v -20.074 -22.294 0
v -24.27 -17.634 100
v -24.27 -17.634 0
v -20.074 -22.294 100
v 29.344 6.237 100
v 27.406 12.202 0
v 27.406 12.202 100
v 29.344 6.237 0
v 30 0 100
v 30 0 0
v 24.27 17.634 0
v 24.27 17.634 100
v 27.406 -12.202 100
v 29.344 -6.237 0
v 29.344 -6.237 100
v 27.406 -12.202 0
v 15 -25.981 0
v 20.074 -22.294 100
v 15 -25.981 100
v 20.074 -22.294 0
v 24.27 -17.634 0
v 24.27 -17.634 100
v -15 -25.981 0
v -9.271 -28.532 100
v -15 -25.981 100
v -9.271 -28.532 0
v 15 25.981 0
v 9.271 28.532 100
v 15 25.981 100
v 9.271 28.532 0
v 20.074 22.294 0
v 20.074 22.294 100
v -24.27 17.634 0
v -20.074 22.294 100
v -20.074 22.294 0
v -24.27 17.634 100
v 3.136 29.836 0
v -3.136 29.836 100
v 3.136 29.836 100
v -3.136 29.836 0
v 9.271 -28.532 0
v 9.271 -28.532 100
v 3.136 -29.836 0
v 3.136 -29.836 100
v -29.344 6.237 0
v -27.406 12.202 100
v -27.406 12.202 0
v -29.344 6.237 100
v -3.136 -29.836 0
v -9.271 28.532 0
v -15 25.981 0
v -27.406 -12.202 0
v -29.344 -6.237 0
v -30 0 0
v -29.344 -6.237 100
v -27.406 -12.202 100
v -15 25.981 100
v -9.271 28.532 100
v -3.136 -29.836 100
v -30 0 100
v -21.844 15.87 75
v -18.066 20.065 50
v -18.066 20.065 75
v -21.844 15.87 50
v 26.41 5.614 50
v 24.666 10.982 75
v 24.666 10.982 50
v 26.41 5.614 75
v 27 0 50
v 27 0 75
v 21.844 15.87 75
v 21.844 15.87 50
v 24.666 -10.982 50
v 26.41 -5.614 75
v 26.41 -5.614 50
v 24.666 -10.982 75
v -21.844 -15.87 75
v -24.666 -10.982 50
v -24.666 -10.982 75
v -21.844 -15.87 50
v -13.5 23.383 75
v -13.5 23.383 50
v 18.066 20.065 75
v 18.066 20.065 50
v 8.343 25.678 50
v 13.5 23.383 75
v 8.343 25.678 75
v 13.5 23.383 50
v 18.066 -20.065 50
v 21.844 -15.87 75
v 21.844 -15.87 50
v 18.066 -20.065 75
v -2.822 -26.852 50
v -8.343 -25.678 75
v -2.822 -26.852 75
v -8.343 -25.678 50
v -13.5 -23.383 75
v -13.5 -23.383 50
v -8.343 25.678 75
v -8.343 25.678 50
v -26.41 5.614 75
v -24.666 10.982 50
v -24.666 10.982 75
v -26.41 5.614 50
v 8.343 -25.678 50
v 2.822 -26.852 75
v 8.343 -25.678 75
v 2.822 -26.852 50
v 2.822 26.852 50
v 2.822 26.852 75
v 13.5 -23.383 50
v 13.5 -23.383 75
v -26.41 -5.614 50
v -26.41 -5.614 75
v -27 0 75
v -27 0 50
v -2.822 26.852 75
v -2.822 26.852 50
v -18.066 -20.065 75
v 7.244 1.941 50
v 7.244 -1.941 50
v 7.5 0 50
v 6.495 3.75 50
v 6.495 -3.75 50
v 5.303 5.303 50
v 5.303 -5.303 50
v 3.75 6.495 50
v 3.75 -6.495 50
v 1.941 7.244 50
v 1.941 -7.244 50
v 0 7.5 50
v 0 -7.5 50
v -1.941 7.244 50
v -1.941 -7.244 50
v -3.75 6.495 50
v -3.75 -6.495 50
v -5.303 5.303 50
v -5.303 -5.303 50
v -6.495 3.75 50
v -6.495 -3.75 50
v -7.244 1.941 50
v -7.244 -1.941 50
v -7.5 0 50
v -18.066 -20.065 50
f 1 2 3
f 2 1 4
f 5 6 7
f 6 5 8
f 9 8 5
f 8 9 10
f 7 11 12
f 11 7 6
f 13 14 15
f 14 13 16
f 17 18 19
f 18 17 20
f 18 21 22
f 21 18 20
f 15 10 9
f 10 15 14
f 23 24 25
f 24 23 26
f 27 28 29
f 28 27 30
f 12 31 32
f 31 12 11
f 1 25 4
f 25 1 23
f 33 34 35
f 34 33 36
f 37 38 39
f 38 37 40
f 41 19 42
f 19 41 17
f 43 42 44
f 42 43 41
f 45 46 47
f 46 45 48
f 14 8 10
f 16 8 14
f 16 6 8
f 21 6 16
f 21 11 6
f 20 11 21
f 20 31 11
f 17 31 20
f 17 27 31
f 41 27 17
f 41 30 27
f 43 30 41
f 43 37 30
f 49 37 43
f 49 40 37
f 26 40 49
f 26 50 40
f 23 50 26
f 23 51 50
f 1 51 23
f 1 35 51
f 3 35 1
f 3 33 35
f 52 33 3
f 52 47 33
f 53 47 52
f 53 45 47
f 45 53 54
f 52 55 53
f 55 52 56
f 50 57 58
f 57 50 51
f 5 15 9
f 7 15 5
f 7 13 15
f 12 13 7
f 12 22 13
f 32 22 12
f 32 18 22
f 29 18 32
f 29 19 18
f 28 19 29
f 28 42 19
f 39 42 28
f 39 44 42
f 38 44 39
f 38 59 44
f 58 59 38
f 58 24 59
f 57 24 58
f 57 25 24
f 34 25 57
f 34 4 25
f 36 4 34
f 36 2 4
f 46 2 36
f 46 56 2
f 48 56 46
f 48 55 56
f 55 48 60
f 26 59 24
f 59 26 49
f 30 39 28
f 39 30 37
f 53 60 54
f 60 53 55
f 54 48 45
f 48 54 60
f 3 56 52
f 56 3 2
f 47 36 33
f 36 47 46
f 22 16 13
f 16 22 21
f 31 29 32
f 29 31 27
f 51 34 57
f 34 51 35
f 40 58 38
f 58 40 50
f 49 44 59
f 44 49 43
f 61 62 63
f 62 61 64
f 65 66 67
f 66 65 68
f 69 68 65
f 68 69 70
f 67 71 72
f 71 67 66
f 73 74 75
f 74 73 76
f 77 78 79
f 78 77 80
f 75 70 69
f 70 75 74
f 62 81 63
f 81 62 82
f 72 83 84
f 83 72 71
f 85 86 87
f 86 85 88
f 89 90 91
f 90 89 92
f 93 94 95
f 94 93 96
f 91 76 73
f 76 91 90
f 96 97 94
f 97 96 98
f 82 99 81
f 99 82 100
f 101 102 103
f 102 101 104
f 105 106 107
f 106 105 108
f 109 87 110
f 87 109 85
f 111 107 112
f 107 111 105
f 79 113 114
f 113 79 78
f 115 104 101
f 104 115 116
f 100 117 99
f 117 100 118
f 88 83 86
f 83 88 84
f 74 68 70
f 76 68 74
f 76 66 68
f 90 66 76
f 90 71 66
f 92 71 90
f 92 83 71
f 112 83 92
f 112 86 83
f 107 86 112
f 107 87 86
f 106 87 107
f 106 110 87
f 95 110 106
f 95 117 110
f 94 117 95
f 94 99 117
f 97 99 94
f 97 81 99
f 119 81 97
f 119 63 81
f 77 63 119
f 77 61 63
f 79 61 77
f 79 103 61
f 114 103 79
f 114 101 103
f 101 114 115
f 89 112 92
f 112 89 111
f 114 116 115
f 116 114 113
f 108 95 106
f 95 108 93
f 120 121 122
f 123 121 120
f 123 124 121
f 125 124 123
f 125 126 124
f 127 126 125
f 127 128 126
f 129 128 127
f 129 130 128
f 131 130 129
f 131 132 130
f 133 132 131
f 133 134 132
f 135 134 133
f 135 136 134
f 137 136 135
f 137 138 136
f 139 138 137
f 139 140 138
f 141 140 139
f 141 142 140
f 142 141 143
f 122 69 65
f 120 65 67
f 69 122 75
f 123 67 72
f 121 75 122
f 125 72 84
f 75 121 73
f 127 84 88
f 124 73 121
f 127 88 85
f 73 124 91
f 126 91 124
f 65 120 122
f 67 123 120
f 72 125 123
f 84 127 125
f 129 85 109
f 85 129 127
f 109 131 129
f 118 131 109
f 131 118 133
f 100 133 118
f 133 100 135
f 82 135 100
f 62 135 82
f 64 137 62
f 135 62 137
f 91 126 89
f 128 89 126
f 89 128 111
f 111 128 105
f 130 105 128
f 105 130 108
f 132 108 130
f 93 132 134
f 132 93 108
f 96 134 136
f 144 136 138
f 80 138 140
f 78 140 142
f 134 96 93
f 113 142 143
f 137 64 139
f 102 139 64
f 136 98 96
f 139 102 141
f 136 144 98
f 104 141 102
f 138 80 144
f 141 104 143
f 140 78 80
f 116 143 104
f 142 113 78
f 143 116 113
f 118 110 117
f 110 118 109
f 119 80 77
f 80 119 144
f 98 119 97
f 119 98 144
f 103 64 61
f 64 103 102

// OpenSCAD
// Parameters for the bottle
neck_height = 50;
neck_diameter = 15;
body_height = 100;
body_diameter = 60;
body_wall_thickness = 3;
base_diameter = 40;
base_height = 20;
base_wall_thickness = 2;

// Calculate inner dimensions
neck_height_inner = neck_height - neck_height;
neck_diameter_inner = neck_diameter * 0.7;
body_height_inner = body_height - body_height;
body_diameter_inner = body_diameter * 0.7;
base_diameter_inner = base_diameter * 0.7;
base_height_inner = base_height - base_height;

module bottle() {
    // Body
    difference() {
        cylinder(h = body_height, d = body_diameter, center = false);
        translate([0, 0, body_height/2])
        cylinder(h = body_height/4, d = body_diameter - 2*body_wall_thickness, center = false);
    }

    // Neck
    cylinder(h = neck_height, d = neck_diameter, center = false);

    // Base
    difference() {
        cylinder(h = base_height, d = base_diameter, center = false);
        translate([0, 0, base_height/2])
        cylinder(h = base_height/4, d = base_diameter - 2*base_wall_thickness, center = false);
    }

    // Cap (optional - adds complexity and might require more rounding)
    // This example removes it for simplicity.
    //translate([0,0,body_height])
    //difference(){
    //    cylinder(h = neck_height - body_height - 10, d = neck_diameter, center = false);
    //    cylinder(h = body_height - 20, d = neck_diameter - 2*body_wall_thickness, center = false);
    //}
}

bottle();
